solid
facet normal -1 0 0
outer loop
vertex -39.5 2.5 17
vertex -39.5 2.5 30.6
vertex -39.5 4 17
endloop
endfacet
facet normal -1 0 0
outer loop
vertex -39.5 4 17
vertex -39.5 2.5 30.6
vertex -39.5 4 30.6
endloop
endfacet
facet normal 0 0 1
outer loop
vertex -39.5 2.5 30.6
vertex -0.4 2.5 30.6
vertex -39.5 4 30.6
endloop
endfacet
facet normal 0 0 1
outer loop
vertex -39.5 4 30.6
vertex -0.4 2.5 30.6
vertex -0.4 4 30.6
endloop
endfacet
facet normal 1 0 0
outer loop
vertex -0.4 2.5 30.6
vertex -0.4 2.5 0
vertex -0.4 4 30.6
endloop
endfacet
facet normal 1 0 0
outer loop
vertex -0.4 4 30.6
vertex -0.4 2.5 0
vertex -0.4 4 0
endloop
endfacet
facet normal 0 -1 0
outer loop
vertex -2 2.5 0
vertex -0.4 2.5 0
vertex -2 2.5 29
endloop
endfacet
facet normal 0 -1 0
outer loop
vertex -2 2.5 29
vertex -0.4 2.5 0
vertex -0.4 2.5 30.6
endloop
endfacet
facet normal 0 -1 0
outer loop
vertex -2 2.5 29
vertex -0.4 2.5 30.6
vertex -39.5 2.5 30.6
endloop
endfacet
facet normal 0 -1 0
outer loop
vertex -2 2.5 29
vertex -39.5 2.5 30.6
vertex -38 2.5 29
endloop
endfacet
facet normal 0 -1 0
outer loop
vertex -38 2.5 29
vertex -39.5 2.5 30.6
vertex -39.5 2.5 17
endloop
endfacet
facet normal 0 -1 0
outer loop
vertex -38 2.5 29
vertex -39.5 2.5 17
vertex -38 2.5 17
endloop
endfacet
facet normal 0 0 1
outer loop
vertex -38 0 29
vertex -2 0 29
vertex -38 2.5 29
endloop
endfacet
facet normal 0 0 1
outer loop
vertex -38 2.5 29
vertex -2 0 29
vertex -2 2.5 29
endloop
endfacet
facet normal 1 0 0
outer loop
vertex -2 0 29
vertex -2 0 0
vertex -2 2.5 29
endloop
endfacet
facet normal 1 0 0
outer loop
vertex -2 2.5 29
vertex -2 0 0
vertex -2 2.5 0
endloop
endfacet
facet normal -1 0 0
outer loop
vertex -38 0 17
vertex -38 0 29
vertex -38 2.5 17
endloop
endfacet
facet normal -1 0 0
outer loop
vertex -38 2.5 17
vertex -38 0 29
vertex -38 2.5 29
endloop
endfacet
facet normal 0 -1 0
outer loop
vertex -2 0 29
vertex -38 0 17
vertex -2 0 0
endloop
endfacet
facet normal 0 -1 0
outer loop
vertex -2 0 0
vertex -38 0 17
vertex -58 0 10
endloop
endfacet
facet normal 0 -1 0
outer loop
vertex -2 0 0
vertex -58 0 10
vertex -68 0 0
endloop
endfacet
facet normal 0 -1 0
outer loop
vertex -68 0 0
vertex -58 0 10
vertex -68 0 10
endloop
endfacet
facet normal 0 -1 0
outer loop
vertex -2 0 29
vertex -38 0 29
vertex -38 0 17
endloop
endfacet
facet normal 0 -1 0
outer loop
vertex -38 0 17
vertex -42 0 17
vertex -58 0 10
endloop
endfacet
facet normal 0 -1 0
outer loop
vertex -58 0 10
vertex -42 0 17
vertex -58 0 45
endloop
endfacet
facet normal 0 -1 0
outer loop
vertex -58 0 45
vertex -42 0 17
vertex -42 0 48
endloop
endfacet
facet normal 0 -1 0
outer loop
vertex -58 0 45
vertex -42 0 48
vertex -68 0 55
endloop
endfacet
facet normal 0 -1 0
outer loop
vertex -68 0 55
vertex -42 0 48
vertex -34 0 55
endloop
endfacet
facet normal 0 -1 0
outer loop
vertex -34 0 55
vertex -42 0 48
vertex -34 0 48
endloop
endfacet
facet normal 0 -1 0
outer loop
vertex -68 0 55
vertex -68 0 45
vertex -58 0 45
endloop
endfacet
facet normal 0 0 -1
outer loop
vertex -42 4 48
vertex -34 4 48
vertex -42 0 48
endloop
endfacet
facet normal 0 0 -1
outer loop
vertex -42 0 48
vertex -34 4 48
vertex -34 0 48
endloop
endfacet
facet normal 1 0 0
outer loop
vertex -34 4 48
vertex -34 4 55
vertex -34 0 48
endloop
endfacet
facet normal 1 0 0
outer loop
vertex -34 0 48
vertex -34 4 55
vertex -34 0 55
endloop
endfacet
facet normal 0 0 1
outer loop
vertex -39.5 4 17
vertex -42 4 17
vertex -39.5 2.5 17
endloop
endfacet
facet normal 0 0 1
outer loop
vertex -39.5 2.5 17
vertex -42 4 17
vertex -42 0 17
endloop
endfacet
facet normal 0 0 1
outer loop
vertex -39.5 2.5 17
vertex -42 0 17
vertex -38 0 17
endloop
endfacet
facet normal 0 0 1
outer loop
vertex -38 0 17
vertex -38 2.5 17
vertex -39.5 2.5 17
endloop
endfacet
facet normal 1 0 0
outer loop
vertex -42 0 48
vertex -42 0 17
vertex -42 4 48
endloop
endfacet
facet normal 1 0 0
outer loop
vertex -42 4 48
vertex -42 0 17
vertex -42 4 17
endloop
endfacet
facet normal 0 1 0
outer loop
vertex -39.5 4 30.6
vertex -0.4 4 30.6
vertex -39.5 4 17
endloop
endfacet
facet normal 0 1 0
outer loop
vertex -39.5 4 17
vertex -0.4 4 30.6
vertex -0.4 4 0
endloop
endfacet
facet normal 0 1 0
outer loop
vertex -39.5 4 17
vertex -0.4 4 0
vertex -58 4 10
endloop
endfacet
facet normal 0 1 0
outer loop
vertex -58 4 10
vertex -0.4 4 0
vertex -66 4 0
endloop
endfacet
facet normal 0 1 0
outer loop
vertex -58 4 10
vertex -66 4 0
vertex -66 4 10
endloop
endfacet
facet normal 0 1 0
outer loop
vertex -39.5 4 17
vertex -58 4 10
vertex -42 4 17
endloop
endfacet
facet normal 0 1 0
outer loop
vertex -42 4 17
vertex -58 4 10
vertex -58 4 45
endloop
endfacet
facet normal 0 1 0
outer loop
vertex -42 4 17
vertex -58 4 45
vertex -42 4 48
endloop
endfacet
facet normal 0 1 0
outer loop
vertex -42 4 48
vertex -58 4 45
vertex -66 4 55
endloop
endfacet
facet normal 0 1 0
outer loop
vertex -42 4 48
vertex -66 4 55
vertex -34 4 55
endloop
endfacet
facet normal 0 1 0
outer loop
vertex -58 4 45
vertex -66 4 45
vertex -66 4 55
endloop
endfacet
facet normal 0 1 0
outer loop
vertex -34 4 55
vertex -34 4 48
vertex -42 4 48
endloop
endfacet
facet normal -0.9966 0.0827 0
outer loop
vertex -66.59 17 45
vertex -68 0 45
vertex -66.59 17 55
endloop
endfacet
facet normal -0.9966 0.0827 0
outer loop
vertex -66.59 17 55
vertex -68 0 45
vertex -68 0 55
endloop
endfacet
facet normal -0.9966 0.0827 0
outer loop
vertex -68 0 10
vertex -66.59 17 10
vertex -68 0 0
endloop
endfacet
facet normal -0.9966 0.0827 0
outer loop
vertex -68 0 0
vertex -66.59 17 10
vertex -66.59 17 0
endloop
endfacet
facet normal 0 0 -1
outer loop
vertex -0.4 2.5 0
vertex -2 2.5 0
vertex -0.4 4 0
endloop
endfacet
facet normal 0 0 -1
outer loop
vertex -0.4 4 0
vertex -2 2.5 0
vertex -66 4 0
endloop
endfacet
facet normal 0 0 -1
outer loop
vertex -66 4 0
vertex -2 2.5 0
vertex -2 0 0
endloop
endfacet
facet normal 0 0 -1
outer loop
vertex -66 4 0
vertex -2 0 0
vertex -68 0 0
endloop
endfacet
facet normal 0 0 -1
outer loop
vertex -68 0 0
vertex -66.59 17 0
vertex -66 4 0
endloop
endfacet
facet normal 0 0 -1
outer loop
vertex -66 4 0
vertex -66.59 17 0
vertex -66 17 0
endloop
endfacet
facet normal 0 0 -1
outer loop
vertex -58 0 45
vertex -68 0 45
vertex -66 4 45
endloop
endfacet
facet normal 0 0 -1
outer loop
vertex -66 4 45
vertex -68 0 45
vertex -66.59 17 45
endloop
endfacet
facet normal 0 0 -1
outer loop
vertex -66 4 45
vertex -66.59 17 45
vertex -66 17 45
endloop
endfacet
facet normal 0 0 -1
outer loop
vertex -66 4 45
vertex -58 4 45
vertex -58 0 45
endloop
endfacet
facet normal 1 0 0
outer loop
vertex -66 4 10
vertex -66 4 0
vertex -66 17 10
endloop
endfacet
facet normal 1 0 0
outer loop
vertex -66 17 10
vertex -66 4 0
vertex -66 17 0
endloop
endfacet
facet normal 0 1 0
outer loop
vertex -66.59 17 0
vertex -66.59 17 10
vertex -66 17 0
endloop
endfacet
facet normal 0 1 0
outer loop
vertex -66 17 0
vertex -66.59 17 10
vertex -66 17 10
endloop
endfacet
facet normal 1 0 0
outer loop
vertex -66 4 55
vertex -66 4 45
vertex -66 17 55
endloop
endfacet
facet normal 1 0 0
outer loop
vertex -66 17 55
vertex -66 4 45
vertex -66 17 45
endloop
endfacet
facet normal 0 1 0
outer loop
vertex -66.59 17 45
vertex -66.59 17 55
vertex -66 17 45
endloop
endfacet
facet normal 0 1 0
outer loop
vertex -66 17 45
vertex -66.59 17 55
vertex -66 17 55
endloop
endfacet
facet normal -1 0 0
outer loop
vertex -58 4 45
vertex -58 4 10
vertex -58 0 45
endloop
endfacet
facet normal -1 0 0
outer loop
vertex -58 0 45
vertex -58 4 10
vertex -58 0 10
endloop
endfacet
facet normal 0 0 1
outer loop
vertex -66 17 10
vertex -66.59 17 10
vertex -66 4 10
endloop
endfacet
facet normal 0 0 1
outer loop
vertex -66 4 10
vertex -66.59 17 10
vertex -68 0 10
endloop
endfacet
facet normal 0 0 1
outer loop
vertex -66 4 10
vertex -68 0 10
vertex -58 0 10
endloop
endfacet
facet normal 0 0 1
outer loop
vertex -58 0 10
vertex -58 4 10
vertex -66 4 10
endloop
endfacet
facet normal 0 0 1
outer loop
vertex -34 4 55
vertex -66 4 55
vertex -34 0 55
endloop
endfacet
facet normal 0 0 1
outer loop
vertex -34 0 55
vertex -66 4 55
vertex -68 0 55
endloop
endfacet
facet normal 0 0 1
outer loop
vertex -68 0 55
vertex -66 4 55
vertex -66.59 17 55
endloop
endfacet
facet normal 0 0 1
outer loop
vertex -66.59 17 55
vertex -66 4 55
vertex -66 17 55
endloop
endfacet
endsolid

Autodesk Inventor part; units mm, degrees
ref_plane "YZ Plane" through (0, 0, 0) normal (1, 0, 0) x (0, 1, 0)
ref_plane "XZ Plane" through (0, 0, 0) normal (0, 1, 0) x (-1, 0, 0)
ref_plane "XY Plane" through (0, 0, 0) normal (0, 0, 1) x (1, 0, 0)
sketch "плоскость" plane through (0, 0, 0) normal (0, 1, 0) x (-1, 0, 0)
  line L0 (68, 55) -> (0, 55)
  line L1 (0, 55) -> (0, 0)
  line L2 (0, 0) -> (68, 0)
  line L3 (68, 0) -> (68, 55)
  dimension "d0" = 68
  dimension "d1" = 55
extrude "толщина" add sketch "плоскость" along normal blind 4
sketch "вырез" plane through (0, 4, 0) normal (0, 1, 0) x (1, 0, 0)
  line L0 (-68, 0) -> (-68, -55) projected
  line L1 (-68, -45) -> (-58, -45)
  line L2 (-58, -45) -> (-58, -10)
  line L3 (-58, -10) -> (-68, -10)
  line L4 (-68, -10) -> (-68, -45)
  line L5 (0, -55) -> (0, 0) projected
  line L6 (-68, -55) -> (0, -55) projected
  line L7 (0, -31) -> (-42, -31)
  line L8 (-42, -31) -> (-42, -55)
  line L9 (-42, -55) -> (0, -55)
  line L10 (0, -55) -> (0, -31)
  line L11 (0, 0) -> (-68, 0) projected
  point P0 (-68, -10)
  point P1 (-63, -10)
  point P2 (-63, -45)
  dimension "d4" = 35
  dimension "d5" = 10
  dimension "d25" = 58
  dimension "d34" = 10
  dimension "d35" = 10
extrude "вырез глубина" cut sketch "вырез" against normal blind 4 contours L3 L2 L1 L0
sketch "Эскиз3" plane through (0, 4, 0) normal (0, 1, 0) x (1, 0, 0)
  line L0 (-68, 0) -> (-68, -55) projected
  line L1 (-58, -45) -> (-68, -45) projected
  line L2 (-68, -55) -> (-66, -55)
  line L3 (-66, -55) -> (-66, -45)
  line L4 (-66, -45) -> (-68, -45)
  line L5 (-68, -45) -> (-68, -55)
  line L6 (-58, -10) -> (-68, -10) projected
  line L7 (0, 0) -> (-68, 0) projected
  line L8 (-68, -10) -> (-66, -10)
  line L9 (-66, -10) -> (-66, 0)
  line L10 (-66, 0) -> (-68, 0)
  line L11 (-68, 0) -> (-68, -10)
  point P0 (-68, 0)
extrude "Выдавливание3" add sketch "Эскиз3" along normal blind 13
sketch "лапки" plane through (-68, 0, 55) normal (0, 0, 1) x (1, 0, 0)
  line L0 (0, 0) -> (0, 17) projected
  line L1 (0, 0) -> (0, 17)
  line L2 (0, 17) -> (1.41, 17)
  line L3 (0, 0) -> (10, 0) projected
  line L4 (1.41, 17) -> (0, 0)
  point P0 (68, 0)
  point P1 (0, 1)
  point P2 (0, 1)
extrude "Выдавливание4" cut sketch "лапки" against normal through all
sketch "Эскиз10" plane through (0, 4, 0) normal (0, 1, 0) x (1, 0, 0)
  line L0 (0, -55) -> (0, 0) projected
  line L1 (-68, -55) -> (0, -55) projected
  line L2 (0, -31) -> (-42, -31)
  line L3 (-42, -31) -> (-42, -55)
  line L4 (-42, -55) -> (0, -55)
  line L5 (0, -55) -> (0, -31)
extrude "Выдавливание7" cut sketch "Эскиз10" against normal blind 4
sketch "Эскиз11" plane through (0, 4, 0) normal (0, 1, 0) x (1, 0, 0)
  line L0 (0, -31) -> (-42, -31) projected
  line L1 (-40, -17) -> (-42, -17)
  line L2 (-42, -17) -> (-42, -31)
  line L3 (-42, -31) -> (-40, -31)
  line L4 (-40, -31) -> (-40, -17)
  point P0 (0, 0)
extrude "Выдавливание8" cut sketch "Эскиз11" against normal blind 4
sketch "Эскиз12" plane through (0, 4, 0) normal (0, 1, 0) x (1, 0, 0)
  line L0 (-42, -55) -> (-42, -17) projected
  line L1 (-42, -48) -> (-34, -48)
  line L2 (-34, -48) -> (-34, -55)
  line L3 (-34, -55) -> (-42, -55)
  line L4 (-42, -55) -> (-42, -48)
  line L5 (-40, -31) -> (0, -31) projected
  point P0 (0, 0)
  point P1 (-42, -55)
  point P2 (-38, -55)
  point P3 (-38, -48)
  point P4 (-42, -51.5)
  point P5 (-34, -51.5)
  dimension "d36" = 7
  dimension "d37" = 8
  dimension "d38" = 17
extrude "Выдавливание9" add sketch "Эскиз12" against normal blind 4
sketch "Эскиз14" plane through (0, 0, 0) normal (0, -1, 0) x (1, 0, 0)
  line L0 (-42, 17) -> (-40, 17) projected
  line L1 (-40, 17) -> (-38, 17)
  line L2 (-38, 17) -> (-38, 31)
  line L3 (-38, 31) -> (-40, 31)
  line L4 (-40, 31) -> (-40, 17)
  line L5 (0, 31) -> (0, 0) projected
  line L6 (-40, 29) -> (0, 29)
  line L7 (0, 29) -> (0, 31)
  line L8 (0, 31) -> (-40, 31)
  line L9 (-40, 31) -> (-40, 29)
  line L10 (0, 0) -> (-68, 0) projected
  line L11 (0, 31) -> (-2, 31)
  line L12 (-2, 31) -> (-2, 0)
  line L13 (-2, 0) -> (0, 0)
  line L14 (0, 0) -> (0, 31)
  point P0 (-38, 29)
  point P1 (-2, 29)
  point P2 (-40, 24)
  point P3 (-38, 24)
  dimension "d46" = 2
  dimension "d47" = 2
  dimension "d48" = 2
extrude "Выдавливание10" cut sketch "Эскиз14" against normal blind 2.5
sketch "Эскиз15" plane through (0, 2.5, 0) normal (0, -1, 0) x (1, 0, 0)
  line L0 (-40, 31) -> (0, 31) projected
  line L1 (0, 0) -> (-0.4, 0)
  line L2 (-0.4, 0) -> (-0.4, 31)
  line L3 (-0.4, 31) -> (0, 31)
  line L4 (0, 31) -> (0, 0)
  line L5 (-40, 17) -> (-40, 31) projected
  line L6 (0, 31) -> (-40, 31)
  line L7 (-40, 31) -> (-40, 30.6)
  line L8 (-40, 30.6) -> (0, 30.6)
  line L9 (0, 30.6) -> (0, 31)
  line L10 (-38, 17) -> (-42, 17) projected
  line L11 (-40, 31) -> (-39.5, 31)
  line L12 (-39.5, 31) -> (-39.5, 17)
  line L13 (-39.5, 17) -> (-40, 17)
  line L14 (-40, 17) -> (-40, 31)
  point P0 (0, 31)
  point P1 (-39.5, 30.6)
  point P2 (-0.4, 30.6)
  dimension "d41" = 0.4
  dimension "d42" = 0.4
  dimension "d43" = 0.5
extrude "Выдавливание11" cut sketch "Эскиз15" against normal blind 1.5
properties part number "box_hut03_10_2025"
